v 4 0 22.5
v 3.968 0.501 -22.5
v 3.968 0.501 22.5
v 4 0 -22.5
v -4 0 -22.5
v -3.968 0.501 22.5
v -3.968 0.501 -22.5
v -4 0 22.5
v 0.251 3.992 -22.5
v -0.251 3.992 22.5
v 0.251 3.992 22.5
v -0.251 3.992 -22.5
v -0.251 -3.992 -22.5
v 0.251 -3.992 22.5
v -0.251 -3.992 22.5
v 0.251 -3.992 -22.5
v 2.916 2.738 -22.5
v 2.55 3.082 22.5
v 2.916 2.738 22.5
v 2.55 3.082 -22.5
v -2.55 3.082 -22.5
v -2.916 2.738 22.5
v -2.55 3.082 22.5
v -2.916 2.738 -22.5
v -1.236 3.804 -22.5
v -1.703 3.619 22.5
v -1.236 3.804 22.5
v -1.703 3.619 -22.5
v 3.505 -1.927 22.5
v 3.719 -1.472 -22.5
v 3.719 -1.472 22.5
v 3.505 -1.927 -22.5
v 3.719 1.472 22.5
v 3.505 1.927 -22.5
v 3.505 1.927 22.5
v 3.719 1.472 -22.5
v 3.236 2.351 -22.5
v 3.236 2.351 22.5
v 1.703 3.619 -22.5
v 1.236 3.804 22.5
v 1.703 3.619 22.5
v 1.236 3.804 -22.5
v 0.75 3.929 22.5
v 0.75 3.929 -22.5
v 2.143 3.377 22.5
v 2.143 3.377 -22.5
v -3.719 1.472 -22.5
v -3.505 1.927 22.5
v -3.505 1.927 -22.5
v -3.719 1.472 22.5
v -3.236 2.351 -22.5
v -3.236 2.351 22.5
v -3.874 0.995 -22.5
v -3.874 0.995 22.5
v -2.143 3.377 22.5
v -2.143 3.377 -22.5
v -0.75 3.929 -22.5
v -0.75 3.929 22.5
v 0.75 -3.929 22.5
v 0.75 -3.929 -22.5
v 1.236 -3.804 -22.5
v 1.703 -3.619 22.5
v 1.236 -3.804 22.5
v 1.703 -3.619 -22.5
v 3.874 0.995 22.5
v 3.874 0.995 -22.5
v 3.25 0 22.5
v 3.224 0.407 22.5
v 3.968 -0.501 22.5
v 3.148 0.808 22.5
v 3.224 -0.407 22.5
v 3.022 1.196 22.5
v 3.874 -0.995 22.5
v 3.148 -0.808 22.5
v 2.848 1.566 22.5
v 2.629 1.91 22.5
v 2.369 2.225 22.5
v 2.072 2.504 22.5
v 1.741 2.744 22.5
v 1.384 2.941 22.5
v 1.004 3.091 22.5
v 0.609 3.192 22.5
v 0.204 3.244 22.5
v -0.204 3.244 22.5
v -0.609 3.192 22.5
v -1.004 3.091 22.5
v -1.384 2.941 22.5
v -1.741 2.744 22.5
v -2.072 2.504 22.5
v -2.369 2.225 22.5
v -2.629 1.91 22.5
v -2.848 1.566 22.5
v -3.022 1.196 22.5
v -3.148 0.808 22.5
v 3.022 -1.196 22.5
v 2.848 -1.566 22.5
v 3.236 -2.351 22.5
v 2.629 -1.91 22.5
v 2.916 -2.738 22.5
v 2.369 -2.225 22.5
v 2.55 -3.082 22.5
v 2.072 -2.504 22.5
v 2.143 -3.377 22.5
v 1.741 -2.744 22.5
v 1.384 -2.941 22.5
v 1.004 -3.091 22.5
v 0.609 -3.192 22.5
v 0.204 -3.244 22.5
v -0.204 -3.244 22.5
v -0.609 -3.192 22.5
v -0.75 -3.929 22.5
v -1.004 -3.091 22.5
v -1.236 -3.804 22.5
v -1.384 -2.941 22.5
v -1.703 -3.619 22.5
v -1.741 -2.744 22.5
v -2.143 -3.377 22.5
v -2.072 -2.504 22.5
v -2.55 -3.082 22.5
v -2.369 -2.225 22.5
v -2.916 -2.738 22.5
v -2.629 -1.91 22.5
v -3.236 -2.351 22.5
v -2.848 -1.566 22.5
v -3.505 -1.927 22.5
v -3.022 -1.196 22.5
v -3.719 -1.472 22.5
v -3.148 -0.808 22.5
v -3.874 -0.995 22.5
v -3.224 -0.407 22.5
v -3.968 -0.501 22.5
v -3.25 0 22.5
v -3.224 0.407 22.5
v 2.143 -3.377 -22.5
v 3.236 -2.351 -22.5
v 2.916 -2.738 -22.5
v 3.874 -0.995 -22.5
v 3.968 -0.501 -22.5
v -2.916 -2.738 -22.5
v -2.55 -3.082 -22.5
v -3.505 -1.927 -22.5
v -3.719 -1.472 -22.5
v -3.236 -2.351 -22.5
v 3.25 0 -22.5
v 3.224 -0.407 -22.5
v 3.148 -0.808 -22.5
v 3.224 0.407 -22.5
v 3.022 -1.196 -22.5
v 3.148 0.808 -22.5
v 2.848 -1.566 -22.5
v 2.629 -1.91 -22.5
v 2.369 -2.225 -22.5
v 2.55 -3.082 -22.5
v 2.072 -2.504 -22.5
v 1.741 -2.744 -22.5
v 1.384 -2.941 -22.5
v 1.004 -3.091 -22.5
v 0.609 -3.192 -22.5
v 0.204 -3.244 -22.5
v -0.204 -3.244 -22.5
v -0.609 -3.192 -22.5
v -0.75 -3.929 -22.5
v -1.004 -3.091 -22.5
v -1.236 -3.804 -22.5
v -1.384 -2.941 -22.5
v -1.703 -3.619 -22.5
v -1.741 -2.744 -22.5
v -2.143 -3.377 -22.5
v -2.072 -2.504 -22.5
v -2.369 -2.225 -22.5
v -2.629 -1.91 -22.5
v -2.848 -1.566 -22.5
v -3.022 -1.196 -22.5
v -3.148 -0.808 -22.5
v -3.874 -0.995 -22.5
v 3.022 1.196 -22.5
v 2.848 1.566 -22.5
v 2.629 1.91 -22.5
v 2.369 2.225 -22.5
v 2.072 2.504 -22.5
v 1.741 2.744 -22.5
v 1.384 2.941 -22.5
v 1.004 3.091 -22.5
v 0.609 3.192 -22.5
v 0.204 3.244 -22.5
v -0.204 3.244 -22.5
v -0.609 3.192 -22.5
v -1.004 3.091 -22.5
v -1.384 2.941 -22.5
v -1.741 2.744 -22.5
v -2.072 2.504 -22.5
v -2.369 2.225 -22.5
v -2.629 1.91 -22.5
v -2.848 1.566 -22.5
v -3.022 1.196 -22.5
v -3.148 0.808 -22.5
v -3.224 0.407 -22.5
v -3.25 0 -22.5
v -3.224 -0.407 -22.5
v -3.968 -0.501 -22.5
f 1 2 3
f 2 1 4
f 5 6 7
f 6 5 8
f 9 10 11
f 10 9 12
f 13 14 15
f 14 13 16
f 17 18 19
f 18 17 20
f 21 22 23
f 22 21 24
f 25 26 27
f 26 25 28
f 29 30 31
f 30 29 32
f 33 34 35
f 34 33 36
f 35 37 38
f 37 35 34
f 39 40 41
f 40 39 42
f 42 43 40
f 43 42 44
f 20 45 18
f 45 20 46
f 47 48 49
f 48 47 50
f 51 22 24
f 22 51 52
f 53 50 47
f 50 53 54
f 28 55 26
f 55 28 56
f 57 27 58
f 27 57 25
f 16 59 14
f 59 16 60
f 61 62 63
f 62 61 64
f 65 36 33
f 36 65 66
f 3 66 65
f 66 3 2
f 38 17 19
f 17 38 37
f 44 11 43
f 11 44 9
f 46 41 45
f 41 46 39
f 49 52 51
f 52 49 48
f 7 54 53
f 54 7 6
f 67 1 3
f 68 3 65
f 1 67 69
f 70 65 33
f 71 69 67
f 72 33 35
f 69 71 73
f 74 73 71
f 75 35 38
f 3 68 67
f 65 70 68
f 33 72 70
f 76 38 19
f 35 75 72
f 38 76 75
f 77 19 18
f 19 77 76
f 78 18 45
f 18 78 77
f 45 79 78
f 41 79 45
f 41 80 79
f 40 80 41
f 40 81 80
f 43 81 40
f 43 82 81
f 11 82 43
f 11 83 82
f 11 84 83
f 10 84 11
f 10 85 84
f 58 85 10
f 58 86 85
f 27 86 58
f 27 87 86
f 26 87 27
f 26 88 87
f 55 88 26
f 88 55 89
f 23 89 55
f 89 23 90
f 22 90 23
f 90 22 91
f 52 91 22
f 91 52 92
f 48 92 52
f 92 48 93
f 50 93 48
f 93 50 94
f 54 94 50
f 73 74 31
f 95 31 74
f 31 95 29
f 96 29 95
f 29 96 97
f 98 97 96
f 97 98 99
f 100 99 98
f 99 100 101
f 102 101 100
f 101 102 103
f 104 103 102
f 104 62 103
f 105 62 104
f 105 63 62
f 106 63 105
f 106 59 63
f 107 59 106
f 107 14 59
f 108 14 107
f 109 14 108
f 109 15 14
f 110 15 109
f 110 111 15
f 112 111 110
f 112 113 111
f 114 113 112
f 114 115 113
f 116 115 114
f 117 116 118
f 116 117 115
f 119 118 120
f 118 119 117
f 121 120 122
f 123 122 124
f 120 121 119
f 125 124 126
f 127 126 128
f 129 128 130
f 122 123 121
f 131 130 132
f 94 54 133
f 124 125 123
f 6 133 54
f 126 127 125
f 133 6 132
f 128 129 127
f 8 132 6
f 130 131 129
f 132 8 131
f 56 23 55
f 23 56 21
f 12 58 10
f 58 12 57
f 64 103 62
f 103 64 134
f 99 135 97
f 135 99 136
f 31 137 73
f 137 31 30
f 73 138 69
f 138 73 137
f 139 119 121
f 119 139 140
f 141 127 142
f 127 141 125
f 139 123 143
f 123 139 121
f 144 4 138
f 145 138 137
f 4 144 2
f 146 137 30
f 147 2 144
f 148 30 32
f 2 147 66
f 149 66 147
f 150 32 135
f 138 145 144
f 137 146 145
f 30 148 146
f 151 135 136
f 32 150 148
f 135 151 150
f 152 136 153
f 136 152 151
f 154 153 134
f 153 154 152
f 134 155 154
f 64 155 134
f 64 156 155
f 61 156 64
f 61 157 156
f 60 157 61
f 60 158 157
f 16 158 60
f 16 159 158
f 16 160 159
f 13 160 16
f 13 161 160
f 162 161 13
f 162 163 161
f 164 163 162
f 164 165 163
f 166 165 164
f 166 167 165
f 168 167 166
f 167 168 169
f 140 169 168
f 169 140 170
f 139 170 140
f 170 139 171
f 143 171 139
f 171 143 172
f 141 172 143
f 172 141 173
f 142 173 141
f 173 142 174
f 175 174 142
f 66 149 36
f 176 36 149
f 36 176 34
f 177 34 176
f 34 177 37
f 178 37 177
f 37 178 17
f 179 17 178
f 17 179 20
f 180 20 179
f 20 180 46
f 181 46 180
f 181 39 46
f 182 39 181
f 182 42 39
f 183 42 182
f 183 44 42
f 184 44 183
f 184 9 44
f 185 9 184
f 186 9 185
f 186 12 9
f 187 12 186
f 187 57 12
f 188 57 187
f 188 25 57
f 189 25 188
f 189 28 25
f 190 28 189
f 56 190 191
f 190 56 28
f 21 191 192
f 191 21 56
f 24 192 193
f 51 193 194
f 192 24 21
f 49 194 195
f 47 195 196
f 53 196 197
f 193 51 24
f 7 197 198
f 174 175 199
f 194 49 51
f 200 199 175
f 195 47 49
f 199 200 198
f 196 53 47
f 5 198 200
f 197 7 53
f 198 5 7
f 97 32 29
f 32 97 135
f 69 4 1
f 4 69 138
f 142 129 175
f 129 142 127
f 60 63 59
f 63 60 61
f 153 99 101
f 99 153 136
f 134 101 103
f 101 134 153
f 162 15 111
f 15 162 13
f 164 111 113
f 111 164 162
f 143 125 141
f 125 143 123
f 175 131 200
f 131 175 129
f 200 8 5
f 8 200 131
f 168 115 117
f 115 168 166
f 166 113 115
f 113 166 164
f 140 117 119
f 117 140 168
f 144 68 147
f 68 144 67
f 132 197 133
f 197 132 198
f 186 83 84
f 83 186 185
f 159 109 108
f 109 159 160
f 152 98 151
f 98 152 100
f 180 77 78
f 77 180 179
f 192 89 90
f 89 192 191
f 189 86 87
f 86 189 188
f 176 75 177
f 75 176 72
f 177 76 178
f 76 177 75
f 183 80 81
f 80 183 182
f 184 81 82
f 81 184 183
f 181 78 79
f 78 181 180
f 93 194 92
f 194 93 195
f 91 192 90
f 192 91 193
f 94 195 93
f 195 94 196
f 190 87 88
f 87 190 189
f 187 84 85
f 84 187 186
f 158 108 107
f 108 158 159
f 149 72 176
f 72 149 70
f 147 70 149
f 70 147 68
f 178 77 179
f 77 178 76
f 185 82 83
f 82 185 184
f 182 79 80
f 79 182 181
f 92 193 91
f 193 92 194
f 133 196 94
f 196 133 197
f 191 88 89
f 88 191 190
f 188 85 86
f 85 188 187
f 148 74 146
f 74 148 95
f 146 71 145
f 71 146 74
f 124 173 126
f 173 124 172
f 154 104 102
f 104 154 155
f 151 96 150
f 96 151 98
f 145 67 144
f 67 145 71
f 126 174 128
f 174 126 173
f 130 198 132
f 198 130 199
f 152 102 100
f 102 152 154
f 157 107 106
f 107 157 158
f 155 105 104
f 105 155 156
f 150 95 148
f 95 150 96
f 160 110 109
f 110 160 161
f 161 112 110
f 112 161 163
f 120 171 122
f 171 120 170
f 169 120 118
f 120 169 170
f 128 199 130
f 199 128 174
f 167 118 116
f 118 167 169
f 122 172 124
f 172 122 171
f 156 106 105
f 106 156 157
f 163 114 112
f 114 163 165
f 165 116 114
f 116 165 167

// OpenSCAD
$fn = 50;


difference() {
	union() {
		translate(v = [0, 0, -22.5000000000]) {
			cylinder(h = 45, r = 4.0000000000);
		}
	}
	union() {
		translate(v = [0, 0, -100.0000000000]) {
			cylinder(h = 200, r = 3.2500000000);
		}
	}
}
